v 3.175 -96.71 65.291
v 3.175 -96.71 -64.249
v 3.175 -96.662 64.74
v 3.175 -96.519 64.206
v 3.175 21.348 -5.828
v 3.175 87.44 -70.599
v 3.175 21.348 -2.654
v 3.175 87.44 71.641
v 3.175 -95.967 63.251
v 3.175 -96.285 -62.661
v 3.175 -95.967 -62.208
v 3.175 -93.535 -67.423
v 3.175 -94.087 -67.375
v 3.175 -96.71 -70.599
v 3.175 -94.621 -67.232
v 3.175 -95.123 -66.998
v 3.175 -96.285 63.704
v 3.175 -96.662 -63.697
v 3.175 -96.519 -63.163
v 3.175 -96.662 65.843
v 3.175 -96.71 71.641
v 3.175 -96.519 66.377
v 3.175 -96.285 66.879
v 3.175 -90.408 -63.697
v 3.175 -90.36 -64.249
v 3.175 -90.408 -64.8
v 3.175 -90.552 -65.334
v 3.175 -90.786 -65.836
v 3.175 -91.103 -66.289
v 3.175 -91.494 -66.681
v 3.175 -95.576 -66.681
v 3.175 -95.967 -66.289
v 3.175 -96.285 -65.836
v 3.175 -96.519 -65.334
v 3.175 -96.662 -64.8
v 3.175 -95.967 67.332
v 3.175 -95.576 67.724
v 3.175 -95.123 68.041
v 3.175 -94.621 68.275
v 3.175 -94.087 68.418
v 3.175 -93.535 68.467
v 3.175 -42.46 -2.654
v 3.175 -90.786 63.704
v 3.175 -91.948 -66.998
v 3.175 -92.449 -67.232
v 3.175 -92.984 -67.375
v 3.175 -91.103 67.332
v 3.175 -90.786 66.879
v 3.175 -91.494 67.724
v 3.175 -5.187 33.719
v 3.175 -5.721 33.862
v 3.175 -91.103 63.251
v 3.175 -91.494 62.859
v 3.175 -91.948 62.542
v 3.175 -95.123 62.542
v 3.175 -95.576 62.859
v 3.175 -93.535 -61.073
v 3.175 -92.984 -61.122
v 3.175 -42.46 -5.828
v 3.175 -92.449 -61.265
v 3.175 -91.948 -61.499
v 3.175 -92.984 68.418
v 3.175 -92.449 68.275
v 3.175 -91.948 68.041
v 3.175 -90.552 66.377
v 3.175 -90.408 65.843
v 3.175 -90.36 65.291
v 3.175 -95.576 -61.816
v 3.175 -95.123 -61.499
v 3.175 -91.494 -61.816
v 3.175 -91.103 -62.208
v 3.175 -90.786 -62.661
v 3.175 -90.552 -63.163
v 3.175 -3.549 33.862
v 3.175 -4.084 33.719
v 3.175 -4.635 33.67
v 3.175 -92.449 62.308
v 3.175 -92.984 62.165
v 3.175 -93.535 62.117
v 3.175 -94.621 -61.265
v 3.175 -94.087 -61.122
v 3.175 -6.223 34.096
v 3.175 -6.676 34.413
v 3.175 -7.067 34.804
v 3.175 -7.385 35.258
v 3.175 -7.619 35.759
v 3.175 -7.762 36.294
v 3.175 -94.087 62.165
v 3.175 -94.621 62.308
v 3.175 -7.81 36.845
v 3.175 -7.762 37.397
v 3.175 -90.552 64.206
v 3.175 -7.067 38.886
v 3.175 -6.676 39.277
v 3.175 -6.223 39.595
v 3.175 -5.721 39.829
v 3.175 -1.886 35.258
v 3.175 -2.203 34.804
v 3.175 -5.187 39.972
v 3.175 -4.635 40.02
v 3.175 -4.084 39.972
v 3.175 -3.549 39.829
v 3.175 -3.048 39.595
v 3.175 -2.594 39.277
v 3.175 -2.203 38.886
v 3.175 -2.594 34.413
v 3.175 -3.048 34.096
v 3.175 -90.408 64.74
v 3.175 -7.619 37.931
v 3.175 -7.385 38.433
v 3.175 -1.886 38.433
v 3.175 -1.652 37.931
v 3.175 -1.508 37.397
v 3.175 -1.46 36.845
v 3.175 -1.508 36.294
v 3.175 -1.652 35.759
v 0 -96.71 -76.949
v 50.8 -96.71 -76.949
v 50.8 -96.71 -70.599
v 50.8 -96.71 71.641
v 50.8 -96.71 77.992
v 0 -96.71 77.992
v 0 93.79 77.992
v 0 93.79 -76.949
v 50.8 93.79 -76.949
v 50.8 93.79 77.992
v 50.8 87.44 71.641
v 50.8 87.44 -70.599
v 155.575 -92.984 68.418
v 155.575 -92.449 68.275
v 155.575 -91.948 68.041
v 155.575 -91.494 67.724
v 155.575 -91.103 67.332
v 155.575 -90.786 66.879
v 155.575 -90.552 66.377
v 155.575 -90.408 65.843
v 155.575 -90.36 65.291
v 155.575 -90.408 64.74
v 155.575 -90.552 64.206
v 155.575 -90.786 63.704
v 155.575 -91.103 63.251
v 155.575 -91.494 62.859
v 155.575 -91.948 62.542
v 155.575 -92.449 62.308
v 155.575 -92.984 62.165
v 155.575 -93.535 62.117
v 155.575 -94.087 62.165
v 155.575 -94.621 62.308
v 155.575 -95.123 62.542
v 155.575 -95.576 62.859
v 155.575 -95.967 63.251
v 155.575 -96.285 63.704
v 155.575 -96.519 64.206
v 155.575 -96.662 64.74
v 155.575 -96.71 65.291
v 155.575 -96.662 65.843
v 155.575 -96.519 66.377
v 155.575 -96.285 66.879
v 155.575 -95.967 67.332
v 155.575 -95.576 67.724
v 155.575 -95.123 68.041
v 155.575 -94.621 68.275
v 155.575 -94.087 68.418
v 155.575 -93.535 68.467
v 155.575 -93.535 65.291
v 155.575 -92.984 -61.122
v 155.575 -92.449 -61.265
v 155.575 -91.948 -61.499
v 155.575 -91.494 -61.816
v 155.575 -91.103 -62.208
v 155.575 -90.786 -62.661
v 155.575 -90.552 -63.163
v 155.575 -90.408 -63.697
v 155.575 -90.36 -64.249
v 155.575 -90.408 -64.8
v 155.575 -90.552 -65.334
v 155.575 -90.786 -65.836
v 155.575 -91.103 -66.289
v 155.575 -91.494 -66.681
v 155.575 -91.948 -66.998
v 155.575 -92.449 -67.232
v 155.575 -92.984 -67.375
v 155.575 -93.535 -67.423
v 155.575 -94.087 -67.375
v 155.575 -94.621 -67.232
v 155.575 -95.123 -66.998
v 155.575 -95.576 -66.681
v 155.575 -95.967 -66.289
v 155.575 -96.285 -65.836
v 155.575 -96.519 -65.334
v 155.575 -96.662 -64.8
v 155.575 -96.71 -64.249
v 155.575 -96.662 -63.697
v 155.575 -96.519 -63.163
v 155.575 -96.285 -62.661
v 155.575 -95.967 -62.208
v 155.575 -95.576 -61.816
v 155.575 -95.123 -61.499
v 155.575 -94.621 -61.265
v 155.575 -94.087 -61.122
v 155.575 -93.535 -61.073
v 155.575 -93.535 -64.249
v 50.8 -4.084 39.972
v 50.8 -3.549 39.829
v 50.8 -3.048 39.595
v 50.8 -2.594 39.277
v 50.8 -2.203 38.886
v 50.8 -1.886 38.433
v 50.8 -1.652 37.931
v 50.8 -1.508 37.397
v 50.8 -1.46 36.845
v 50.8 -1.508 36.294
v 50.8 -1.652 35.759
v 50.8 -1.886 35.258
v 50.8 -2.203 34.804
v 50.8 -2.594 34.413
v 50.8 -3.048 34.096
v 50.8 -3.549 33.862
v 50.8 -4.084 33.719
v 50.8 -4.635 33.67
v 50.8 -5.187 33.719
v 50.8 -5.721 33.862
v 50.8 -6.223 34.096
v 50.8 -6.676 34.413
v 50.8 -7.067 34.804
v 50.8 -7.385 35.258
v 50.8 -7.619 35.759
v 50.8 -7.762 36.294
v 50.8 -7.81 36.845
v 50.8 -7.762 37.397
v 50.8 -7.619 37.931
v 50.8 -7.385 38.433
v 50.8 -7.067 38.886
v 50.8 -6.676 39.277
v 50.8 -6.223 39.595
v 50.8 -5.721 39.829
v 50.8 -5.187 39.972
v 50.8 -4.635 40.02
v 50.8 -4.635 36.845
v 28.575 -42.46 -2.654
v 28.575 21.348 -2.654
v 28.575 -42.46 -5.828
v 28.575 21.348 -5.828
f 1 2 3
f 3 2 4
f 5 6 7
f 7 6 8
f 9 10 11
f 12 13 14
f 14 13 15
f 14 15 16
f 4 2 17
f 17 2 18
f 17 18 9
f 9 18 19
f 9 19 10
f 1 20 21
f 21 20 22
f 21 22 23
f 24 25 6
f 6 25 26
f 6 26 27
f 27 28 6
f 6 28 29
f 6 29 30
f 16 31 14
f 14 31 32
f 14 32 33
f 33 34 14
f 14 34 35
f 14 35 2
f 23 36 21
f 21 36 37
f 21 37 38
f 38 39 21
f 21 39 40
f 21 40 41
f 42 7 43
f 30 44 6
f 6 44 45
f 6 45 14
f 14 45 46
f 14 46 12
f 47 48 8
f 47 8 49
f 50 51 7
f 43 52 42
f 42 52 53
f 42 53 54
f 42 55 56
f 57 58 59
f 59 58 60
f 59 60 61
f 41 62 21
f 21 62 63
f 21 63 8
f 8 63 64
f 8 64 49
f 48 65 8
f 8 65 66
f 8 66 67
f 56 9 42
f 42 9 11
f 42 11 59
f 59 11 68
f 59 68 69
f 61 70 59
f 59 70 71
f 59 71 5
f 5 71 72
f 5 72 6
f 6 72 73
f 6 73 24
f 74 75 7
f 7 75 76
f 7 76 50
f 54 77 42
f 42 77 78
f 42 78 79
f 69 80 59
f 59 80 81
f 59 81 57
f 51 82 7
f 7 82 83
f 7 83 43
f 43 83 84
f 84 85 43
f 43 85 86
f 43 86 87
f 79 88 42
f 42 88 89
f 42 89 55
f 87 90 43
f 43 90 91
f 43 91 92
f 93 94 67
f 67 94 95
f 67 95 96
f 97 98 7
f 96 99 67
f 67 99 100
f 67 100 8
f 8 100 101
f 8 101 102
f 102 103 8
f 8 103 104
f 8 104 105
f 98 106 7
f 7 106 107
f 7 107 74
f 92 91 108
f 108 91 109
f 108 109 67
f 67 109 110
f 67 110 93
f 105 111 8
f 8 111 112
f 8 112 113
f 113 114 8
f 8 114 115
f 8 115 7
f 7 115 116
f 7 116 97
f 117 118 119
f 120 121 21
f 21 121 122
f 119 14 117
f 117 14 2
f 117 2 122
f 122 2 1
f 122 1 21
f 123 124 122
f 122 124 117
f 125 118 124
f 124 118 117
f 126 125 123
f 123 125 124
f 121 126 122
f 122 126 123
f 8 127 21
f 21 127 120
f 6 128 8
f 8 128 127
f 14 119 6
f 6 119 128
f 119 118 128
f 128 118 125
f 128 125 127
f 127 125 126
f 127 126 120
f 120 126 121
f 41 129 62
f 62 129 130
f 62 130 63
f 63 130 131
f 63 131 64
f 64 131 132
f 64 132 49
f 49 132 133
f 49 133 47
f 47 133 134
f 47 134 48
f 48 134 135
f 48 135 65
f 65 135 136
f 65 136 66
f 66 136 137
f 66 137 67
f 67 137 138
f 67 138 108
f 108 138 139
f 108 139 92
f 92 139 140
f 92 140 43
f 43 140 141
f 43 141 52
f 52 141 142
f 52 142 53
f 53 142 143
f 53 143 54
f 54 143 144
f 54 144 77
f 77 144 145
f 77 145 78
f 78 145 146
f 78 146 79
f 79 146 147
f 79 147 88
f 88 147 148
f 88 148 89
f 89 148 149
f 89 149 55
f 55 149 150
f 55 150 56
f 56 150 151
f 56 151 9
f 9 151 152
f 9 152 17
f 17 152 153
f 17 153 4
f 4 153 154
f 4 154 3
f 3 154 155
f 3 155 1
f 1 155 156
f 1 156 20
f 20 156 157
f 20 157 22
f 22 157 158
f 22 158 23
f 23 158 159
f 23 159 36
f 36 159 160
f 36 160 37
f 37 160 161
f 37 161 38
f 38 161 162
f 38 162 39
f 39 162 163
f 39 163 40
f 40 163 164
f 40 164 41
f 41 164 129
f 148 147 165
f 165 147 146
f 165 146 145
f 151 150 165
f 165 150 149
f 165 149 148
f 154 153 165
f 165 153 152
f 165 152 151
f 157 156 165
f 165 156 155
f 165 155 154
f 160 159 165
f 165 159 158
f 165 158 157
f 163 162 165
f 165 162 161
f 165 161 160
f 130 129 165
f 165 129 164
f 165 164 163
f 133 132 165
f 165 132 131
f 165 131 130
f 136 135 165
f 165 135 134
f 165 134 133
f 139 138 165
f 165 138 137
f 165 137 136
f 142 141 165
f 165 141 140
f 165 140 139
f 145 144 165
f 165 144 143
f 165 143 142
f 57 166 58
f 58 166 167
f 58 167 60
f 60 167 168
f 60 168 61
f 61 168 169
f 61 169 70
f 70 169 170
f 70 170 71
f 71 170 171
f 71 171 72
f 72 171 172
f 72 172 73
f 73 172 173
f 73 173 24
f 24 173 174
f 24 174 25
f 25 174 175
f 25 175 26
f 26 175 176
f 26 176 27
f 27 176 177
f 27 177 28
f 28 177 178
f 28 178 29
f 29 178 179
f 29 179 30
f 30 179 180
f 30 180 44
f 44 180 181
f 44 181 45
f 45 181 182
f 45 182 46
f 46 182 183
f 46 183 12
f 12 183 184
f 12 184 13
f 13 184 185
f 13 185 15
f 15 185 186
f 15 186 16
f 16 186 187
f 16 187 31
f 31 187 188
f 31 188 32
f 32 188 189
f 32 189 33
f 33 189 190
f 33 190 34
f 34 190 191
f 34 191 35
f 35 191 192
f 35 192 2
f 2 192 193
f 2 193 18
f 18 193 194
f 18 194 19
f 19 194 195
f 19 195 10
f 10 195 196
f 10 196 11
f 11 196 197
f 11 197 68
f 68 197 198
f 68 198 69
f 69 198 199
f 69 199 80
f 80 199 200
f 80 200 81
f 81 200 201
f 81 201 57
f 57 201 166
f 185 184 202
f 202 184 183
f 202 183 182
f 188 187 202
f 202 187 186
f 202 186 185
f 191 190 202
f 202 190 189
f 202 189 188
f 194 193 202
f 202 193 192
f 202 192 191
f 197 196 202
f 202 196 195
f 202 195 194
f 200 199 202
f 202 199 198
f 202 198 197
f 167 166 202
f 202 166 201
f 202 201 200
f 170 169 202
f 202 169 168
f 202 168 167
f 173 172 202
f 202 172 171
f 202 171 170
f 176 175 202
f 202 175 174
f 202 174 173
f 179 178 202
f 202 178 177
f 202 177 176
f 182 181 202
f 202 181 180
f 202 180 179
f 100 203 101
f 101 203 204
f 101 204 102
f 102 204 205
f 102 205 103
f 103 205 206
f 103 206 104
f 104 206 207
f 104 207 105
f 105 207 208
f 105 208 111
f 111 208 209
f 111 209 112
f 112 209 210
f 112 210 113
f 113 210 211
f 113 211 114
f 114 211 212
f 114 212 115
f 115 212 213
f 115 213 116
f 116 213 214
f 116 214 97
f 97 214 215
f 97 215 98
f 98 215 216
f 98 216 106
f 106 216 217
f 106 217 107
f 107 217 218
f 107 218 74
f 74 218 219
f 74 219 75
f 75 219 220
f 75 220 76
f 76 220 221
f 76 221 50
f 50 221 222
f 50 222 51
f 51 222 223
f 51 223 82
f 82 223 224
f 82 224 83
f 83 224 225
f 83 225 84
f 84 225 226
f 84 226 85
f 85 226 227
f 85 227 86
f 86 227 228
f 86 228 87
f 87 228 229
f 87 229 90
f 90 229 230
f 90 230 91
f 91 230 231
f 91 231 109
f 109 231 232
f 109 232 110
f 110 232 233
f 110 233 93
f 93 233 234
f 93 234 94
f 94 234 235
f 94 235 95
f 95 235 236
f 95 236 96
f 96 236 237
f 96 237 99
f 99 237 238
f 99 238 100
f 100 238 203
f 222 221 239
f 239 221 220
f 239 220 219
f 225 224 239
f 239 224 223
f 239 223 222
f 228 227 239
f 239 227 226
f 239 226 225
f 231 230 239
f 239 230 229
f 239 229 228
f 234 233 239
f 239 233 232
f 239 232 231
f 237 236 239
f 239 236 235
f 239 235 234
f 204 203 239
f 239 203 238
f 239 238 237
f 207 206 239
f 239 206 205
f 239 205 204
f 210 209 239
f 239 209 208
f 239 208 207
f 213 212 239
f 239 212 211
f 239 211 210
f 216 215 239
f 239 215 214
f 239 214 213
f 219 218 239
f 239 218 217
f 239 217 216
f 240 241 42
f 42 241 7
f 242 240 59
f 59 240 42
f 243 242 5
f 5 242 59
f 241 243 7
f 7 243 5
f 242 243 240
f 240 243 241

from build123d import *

# Parameters (mm, degrees)
SKETCH1_W           = 142.24
SKETCH1_H           = 184.15
BOSS_EXTRUDE1_DEPTH = 3.175
BOSS_EXTRUDE2_DEPTH = 50.8
SKETCH3_R           = 3.175
BOSS_EXTRUDE3_DEPTH = 152.4
SKETCH4_R           = 3.175
BOSS_EXTRUDE5_DEPTH = 47.625
SKETCH5_W           = 3.175
SKETCH5_H           = 63.808036069
BOSS_EXTRUDE6_DEPTH = 25.4


with BuildPart() as part:
    # Sketch1 → Boss-Extrude1 (new body)
    with BuildSketch(Plane(origin=(0, 0, 0), x_dir=(0, 0, -1), z_dir=(1, 0, 0))):
        with Locations((-0.521497585, -4.635193237)):
            Rectangle(SKETCH1_W, SKETCH1_H)
    extrude(amount=BOSS_EXTRUDE1_DEPTH)

    # Sketch2 → Boss-Extrude2 (add)
    with BuildSketch(Plane.ZY):
        Polygon((71.641497585, -96.710193237), (77.991497585, -96.710193237), (77.991497585, 93.789806763), (-76.948502415, 93.789806763), (-76.948502415, -96.710193237), (-70.598502415, -96.710193237), (-70.598502415, 87.439806763), (71.641497585, 87.439806763), align=None)
    extrude(amount=-BOSS_EXTRUDE2_DEPTH)

    # Sketch3 → Boss-Extrude3 (add)
    with BuildSketch(Plane(origin=(3.175, 0, 0), x_dir=(0, 0, -1), z_dir=(1, 0, 0))):
        with Locations(Location((-65.291497585, -93.535193237, 0), (0, 0, 270))):
            Circle(SKETCH3_R)
        with Locations(Location((64.248502415, -93.535193237, 0), (0, 0, 270))):
            Circle(SKETCH3_R)
    extrude(amount=BOSS_EXTRUDE3_DEPTH)

    # Sketch4 → Boss-Extrude5 (add)
    with BuildSketch(Plane(origin=(3.175, 0, 0), x_dir=(0, 0, -1), z_dir=(1, 0, 0))):
        with Locations((-36.845275585, -4.635193237)):
            Circle(SKETCH4_R)
    extrude(amount=BOSS_EXTRUDE5_DEPTH)

    # Sketch5 → Boss-Extrude6 (add)
    with BuildSketch(Plane(origin=(3.175, 0, 0), x_dir=(0, 0, -1), z_dir=(1, 0, 0))):
        with Locations((4.241002415, -10.555636975)):
            Rectangle(SKETCH5_W, SKETCH5_H)
    extrude(amount=BOSS_EXTRUDE6_DEPTH)


solid = part.part
